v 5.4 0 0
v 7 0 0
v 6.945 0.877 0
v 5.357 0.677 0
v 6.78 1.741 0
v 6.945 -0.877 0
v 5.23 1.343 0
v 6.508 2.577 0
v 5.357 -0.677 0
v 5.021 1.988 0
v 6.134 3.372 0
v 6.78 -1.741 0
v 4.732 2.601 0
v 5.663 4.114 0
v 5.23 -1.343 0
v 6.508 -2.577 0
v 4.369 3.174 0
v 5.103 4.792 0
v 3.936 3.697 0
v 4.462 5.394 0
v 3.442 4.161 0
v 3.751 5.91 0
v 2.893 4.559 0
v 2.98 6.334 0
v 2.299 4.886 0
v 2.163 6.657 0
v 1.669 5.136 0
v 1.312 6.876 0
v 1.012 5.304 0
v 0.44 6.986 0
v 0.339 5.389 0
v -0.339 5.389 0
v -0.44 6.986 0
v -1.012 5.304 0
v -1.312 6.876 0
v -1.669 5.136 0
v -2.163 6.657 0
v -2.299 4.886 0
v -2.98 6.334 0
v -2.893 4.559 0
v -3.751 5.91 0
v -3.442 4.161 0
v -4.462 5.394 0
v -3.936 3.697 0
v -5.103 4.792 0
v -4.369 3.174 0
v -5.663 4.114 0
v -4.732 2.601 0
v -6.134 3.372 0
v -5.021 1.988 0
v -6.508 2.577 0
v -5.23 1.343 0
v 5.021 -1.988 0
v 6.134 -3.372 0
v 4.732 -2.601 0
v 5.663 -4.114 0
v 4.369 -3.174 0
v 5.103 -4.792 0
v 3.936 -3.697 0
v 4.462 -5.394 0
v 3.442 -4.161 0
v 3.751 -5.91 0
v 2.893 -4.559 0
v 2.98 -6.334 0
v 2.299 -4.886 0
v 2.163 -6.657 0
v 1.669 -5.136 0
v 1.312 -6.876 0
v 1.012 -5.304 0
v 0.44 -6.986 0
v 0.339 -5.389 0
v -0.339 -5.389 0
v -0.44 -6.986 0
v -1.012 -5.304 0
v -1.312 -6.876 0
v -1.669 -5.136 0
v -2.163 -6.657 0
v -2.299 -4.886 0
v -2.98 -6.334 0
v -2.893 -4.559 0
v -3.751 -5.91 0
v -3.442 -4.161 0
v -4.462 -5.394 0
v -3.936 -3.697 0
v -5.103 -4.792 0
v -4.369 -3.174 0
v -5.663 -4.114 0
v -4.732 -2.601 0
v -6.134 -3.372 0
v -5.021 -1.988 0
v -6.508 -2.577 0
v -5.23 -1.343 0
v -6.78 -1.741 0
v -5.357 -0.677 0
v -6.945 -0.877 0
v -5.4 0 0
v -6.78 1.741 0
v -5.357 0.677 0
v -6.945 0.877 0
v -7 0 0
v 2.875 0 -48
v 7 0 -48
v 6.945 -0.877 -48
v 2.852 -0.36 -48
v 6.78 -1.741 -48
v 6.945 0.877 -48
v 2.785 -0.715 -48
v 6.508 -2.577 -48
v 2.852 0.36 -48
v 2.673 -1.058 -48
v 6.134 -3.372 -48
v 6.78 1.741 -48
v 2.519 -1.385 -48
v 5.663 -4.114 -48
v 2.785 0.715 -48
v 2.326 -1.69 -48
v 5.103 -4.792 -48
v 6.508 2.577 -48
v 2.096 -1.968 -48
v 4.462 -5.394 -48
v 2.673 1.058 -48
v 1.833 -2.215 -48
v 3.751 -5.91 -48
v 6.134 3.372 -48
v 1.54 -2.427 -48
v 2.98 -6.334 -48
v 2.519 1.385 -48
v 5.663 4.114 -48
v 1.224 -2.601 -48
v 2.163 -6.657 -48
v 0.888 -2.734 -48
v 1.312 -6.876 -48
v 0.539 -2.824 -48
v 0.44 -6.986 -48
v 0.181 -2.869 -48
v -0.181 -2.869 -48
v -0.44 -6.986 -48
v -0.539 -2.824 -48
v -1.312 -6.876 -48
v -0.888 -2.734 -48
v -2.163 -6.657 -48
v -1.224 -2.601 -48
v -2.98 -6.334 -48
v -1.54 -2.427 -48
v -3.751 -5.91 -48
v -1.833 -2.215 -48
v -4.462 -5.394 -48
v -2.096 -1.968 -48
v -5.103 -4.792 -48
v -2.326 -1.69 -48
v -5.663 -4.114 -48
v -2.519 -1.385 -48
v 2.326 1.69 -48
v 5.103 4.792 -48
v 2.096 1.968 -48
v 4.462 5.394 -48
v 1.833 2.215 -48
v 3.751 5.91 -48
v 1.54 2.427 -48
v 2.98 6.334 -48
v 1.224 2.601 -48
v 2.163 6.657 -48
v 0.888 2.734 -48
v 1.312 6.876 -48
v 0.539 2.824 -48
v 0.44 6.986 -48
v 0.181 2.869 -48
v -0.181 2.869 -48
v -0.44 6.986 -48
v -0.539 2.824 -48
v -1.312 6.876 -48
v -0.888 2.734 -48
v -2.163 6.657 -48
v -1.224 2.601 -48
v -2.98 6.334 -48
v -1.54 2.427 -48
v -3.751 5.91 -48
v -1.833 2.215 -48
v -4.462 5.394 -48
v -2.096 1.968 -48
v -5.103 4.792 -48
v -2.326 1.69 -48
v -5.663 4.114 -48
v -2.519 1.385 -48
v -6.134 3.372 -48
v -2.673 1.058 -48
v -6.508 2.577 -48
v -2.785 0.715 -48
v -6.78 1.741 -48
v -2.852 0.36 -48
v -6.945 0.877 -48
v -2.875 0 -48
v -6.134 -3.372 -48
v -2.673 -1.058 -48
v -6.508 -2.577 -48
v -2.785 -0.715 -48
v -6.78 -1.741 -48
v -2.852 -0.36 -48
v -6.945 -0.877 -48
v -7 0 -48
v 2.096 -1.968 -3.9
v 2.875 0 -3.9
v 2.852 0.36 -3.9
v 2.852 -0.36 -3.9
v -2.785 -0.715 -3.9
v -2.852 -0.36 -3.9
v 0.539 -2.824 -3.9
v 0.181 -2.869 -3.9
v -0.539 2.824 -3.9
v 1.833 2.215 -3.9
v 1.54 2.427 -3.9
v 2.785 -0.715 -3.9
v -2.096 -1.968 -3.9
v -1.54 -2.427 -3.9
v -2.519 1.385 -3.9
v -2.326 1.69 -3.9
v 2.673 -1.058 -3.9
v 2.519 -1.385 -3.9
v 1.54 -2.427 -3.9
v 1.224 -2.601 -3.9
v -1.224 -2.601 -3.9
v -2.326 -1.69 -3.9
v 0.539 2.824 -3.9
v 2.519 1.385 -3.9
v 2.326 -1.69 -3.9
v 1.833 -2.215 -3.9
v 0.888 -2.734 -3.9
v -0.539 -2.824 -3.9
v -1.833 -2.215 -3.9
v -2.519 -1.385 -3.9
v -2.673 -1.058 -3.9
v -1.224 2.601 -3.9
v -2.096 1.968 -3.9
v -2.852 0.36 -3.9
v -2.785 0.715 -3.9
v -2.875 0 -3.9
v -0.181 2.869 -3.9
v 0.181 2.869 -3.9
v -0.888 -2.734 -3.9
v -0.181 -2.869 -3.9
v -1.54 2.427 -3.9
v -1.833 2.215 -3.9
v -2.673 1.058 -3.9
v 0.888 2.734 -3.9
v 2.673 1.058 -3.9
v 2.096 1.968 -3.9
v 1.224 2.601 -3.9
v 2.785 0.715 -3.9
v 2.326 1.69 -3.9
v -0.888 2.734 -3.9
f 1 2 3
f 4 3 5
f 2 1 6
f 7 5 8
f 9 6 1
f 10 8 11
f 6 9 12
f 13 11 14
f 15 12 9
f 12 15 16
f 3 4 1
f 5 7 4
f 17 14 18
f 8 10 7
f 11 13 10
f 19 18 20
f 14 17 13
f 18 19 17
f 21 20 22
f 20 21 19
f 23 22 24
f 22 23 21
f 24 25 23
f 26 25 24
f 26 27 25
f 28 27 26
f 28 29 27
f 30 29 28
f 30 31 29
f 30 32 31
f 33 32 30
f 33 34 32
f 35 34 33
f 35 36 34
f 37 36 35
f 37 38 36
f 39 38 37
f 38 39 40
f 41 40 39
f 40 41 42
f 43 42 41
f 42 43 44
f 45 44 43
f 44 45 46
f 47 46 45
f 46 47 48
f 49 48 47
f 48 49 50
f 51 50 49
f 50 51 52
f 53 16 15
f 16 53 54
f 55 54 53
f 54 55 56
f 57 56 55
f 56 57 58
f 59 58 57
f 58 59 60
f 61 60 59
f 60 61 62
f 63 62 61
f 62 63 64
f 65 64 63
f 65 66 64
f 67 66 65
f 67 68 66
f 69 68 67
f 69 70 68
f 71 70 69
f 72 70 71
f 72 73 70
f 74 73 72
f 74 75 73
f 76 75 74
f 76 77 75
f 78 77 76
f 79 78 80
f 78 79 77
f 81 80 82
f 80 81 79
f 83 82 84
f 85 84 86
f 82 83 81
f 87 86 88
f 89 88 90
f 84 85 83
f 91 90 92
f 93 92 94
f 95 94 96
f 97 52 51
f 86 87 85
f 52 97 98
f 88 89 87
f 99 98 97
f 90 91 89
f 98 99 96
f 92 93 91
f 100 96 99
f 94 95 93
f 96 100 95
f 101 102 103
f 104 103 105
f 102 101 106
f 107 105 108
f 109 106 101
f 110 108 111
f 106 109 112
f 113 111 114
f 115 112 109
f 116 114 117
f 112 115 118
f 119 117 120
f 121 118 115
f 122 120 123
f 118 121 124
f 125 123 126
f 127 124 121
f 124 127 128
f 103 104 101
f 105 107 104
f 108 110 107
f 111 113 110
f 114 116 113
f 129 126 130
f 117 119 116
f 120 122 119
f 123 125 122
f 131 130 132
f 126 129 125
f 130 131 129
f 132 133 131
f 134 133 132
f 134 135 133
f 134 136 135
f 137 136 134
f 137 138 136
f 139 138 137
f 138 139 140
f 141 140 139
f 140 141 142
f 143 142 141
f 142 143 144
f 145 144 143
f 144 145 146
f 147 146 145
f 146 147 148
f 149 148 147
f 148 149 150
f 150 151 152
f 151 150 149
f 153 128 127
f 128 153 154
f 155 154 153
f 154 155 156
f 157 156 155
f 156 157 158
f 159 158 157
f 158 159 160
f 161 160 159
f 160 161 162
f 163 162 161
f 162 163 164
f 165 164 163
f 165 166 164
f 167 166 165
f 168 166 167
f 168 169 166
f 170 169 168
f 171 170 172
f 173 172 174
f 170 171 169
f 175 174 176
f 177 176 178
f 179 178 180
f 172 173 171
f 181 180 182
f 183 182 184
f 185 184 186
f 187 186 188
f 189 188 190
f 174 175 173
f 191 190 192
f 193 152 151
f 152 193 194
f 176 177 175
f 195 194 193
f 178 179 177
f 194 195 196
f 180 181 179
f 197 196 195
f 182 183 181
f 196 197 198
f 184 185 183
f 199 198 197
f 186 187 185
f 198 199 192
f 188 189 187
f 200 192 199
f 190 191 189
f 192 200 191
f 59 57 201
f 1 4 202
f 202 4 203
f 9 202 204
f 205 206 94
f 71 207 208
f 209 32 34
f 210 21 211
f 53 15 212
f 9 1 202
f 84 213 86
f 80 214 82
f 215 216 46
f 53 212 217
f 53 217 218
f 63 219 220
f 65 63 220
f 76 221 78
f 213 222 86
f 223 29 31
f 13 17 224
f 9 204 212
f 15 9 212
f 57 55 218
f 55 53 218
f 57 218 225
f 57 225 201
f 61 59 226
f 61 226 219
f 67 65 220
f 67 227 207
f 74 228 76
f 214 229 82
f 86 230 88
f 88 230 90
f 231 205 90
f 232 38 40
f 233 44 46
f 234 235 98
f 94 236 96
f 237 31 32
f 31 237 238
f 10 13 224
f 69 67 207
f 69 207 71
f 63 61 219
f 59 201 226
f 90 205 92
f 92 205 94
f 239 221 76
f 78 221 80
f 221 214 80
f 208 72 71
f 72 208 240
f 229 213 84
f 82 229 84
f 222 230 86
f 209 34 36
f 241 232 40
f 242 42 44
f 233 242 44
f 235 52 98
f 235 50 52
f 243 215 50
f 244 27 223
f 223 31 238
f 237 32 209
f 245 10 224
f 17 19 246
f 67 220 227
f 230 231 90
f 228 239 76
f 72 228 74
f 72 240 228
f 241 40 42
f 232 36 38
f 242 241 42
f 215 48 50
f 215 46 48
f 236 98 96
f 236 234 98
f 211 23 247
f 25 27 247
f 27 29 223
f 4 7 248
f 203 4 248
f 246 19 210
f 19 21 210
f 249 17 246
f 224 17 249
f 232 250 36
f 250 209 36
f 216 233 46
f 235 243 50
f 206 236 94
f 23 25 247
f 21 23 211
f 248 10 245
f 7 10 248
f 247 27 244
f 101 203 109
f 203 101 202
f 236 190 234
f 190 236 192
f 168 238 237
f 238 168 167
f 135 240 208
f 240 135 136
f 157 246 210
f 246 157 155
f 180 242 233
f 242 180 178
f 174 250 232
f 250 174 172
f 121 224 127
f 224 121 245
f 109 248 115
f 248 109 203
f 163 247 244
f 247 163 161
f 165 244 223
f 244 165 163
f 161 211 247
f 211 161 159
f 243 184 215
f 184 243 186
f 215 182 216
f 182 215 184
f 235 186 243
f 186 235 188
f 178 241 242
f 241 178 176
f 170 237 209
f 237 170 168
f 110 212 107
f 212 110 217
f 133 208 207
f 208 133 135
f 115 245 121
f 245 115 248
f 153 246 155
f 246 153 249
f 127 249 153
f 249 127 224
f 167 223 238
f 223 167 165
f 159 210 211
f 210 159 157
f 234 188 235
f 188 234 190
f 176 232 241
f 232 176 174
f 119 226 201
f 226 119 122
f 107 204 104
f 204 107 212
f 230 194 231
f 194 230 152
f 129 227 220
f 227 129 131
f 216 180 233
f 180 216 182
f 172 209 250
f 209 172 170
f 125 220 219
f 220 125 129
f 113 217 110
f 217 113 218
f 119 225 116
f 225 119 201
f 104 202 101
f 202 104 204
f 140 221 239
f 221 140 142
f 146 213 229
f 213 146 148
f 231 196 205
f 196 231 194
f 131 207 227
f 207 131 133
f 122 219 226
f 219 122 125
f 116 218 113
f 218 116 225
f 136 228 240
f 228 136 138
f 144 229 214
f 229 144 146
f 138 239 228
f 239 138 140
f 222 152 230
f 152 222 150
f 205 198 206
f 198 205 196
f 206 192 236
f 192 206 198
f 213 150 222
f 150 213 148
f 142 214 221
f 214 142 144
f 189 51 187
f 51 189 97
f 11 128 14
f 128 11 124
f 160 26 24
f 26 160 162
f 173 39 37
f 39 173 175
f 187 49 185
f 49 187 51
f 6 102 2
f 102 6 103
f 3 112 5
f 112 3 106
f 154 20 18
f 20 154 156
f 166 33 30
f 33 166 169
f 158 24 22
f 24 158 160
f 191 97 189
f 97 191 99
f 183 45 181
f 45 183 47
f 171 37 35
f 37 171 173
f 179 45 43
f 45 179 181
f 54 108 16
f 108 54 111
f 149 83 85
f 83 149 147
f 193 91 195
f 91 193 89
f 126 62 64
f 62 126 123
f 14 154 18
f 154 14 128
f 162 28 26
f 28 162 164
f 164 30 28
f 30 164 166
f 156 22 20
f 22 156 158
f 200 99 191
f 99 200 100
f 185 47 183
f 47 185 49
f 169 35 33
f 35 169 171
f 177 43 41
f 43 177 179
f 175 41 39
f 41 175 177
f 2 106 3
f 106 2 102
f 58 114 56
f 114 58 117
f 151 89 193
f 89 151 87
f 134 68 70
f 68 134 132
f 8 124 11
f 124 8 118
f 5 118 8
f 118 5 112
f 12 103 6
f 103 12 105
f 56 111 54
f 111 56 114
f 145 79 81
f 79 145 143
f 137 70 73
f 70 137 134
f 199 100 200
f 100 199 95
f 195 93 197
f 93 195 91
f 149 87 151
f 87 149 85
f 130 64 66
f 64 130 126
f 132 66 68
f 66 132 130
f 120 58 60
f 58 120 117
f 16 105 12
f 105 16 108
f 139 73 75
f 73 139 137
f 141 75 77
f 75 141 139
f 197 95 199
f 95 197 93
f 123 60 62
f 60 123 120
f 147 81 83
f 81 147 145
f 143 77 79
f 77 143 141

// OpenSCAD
$fn = 50;


difference() {
	union() {
		translate(v = [0, 0, -48.0000000000]) {
			cylinder(h = 48, r = 7.0000000000);
		}
		cylinder(h = 0, r = 13.0000000000);
	}
	union() {
		translate(v = [0, 0, 0]) {
			rotate(a = [0, 0, 0]) {
				difference() {
					union() {
						#translate(v = [0, 0, -48.0000000000]) {
							cylinder(h = 48, r = 2.6000000000);
						}
						#translate(v = [0, 0, -3.9000000000]) {
							cylinder(h = 3.9000000000, r = 7.0000000000, r1 = 2.8750000000, r2 = 5.4000000000);
						}
						#translate(v = [0, 0, -48.0000000000]) {
							cylinder(h = 48, r = 2.8750000000);
						}
						#translate(v = [0, 0, -48.0000000000]) {
							cylinder(h = 48, r = 2.6000000000);
						}
					}
					union();
				}
			}
		}
	}
}
